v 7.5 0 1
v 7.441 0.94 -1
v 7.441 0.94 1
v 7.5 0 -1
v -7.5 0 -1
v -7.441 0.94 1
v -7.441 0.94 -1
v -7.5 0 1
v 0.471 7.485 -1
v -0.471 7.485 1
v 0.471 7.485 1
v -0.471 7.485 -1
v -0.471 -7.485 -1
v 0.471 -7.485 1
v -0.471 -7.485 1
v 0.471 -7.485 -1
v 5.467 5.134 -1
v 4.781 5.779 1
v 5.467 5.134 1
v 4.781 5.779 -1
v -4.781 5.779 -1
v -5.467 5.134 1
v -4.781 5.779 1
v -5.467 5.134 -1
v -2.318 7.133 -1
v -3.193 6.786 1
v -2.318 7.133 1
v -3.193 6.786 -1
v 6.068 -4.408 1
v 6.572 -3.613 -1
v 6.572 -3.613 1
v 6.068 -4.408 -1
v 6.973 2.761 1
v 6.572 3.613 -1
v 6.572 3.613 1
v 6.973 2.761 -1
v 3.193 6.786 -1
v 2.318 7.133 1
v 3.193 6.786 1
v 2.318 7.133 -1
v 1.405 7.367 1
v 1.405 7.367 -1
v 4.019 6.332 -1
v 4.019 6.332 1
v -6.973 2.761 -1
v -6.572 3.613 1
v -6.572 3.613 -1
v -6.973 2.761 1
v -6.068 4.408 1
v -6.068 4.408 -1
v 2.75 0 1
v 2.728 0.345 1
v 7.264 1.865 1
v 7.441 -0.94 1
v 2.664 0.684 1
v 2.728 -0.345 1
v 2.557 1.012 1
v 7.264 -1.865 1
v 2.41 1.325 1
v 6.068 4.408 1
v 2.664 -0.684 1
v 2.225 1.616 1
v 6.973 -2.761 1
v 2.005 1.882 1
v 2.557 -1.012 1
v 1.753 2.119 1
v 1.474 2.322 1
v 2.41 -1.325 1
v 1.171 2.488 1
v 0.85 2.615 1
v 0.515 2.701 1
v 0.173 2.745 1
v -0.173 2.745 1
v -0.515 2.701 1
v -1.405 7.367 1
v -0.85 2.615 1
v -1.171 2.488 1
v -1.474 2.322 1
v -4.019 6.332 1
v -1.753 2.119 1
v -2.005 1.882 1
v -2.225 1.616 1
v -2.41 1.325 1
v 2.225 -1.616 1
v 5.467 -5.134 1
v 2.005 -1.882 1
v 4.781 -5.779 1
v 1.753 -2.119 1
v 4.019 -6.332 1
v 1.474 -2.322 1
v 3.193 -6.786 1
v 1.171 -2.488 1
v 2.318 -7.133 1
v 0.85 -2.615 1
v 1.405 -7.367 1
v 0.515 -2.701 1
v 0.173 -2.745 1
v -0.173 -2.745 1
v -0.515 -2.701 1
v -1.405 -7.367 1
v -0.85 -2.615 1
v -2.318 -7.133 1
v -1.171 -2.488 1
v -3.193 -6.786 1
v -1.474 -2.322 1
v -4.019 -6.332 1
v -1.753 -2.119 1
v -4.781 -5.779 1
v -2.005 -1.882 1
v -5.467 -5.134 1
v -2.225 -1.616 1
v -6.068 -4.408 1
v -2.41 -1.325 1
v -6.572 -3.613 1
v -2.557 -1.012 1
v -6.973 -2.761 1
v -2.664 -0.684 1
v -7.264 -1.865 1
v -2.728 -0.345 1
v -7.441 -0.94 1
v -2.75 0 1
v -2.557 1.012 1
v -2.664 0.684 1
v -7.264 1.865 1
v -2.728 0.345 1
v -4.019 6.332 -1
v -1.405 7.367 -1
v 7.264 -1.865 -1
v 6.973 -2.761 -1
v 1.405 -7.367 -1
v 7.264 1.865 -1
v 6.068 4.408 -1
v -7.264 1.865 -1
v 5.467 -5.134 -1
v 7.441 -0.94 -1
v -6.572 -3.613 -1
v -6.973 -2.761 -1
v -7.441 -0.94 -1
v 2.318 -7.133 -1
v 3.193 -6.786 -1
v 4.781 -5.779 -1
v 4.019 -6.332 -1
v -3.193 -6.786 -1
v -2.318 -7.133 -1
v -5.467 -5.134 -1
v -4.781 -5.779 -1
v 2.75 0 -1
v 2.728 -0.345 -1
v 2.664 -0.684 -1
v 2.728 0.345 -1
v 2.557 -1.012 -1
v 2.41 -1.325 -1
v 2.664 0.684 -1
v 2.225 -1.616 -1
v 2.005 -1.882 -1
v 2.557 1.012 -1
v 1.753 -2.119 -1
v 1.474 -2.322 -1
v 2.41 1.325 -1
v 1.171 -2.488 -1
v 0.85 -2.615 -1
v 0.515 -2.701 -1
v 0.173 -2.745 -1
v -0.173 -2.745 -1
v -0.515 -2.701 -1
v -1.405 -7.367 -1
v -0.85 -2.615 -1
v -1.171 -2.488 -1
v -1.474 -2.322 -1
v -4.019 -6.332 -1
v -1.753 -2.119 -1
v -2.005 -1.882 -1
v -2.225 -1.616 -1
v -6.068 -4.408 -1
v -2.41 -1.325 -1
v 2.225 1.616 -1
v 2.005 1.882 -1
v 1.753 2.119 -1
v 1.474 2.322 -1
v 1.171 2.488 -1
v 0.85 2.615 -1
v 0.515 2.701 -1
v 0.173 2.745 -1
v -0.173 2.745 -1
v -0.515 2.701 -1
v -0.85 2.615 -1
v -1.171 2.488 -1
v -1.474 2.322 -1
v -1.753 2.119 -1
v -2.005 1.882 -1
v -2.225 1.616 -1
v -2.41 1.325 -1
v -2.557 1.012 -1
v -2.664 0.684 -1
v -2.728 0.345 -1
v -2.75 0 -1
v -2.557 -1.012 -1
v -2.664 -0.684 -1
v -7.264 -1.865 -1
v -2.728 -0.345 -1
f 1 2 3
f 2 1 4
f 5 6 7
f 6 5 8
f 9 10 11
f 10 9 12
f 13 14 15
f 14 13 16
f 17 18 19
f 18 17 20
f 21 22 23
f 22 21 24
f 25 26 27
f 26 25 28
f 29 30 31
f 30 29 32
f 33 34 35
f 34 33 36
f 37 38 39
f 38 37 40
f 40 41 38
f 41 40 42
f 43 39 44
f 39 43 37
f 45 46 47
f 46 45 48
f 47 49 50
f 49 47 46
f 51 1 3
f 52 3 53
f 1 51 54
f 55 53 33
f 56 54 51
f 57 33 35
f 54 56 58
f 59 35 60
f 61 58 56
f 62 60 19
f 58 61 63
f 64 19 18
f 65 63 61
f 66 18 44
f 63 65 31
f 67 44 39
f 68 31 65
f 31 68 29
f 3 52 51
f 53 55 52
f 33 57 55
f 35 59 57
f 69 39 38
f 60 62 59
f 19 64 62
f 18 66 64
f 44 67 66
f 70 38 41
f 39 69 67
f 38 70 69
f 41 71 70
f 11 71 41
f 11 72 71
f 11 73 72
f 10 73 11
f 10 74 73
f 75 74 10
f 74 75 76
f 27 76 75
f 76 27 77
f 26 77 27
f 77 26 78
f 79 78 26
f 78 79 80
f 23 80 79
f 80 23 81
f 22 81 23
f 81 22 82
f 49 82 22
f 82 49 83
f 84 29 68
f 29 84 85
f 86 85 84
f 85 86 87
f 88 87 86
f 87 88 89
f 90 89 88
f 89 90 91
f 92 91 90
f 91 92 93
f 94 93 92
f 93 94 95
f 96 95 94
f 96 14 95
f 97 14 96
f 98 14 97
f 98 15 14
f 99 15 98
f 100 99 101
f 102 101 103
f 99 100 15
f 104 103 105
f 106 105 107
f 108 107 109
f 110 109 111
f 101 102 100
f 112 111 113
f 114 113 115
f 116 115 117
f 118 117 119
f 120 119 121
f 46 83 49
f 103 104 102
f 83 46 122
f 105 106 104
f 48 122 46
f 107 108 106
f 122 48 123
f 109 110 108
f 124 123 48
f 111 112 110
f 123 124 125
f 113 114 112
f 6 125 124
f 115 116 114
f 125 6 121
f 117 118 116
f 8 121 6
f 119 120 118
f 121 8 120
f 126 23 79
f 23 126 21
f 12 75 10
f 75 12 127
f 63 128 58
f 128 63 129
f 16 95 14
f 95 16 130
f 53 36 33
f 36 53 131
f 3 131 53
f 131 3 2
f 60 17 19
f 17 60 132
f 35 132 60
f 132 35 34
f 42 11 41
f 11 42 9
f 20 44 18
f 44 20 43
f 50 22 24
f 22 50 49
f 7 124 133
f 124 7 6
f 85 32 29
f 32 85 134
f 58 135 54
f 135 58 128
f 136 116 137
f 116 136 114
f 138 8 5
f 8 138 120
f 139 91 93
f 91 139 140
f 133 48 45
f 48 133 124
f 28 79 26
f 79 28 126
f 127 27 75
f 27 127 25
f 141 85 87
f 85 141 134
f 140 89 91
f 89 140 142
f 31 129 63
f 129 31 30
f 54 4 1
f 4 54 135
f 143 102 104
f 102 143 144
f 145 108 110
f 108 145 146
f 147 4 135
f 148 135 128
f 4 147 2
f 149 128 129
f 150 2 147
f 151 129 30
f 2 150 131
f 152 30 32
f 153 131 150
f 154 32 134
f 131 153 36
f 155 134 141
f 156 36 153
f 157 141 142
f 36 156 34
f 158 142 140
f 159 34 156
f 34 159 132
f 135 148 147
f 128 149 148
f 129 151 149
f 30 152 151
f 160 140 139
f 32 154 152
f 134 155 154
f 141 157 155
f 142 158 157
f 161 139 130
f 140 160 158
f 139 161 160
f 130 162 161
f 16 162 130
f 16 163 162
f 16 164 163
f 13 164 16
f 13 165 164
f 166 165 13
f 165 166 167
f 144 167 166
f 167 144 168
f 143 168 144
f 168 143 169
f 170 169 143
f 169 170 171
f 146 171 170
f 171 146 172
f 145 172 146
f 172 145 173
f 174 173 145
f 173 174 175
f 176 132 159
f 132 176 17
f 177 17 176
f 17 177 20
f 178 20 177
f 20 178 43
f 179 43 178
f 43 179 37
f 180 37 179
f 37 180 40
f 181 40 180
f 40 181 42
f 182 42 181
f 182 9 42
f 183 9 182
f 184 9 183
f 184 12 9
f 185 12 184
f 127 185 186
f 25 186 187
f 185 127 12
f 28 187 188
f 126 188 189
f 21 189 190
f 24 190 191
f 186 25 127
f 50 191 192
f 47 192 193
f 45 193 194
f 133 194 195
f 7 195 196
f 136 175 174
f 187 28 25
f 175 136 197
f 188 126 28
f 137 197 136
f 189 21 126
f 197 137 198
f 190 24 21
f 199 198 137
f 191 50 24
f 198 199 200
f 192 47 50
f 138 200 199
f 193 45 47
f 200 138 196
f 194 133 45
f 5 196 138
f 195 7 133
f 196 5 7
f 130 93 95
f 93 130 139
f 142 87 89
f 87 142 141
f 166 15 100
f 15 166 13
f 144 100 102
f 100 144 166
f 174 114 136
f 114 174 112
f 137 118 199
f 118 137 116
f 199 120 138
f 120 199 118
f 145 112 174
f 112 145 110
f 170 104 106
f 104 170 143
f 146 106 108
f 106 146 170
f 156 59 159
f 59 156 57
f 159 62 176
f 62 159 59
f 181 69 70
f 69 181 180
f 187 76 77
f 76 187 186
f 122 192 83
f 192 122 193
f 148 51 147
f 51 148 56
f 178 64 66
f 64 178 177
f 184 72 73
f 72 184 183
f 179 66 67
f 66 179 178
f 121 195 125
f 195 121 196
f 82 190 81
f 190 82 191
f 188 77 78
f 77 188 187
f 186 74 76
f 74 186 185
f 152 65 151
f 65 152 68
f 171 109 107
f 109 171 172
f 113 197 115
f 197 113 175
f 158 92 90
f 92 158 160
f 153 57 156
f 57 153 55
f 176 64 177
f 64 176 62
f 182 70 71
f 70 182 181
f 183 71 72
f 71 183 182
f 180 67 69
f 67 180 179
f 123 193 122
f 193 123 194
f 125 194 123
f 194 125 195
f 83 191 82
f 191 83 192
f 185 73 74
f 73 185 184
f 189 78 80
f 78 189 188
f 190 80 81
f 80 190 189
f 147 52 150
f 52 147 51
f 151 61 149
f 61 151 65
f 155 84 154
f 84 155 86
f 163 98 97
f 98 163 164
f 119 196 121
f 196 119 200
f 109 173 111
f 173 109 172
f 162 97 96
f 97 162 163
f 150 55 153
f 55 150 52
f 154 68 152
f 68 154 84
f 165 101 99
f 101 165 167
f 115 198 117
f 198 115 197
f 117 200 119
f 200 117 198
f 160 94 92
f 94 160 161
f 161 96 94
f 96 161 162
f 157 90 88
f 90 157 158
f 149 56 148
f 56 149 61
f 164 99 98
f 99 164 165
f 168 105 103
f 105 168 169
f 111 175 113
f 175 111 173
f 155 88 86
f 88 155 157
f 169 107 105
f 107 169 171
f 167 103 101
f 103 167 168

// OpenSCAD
$fn = 50;


difference() {
	union() {
		translate(v = [0, 0, -1.0000000000]) {
			cylinder(h = 2, r = 7.5000000000);
		}
	}
	union() {
		translate(v = [0, 0, -100.0000000000]) {
			cylinder(h = 200, r = 2.7500000000);
		}
	}
}
